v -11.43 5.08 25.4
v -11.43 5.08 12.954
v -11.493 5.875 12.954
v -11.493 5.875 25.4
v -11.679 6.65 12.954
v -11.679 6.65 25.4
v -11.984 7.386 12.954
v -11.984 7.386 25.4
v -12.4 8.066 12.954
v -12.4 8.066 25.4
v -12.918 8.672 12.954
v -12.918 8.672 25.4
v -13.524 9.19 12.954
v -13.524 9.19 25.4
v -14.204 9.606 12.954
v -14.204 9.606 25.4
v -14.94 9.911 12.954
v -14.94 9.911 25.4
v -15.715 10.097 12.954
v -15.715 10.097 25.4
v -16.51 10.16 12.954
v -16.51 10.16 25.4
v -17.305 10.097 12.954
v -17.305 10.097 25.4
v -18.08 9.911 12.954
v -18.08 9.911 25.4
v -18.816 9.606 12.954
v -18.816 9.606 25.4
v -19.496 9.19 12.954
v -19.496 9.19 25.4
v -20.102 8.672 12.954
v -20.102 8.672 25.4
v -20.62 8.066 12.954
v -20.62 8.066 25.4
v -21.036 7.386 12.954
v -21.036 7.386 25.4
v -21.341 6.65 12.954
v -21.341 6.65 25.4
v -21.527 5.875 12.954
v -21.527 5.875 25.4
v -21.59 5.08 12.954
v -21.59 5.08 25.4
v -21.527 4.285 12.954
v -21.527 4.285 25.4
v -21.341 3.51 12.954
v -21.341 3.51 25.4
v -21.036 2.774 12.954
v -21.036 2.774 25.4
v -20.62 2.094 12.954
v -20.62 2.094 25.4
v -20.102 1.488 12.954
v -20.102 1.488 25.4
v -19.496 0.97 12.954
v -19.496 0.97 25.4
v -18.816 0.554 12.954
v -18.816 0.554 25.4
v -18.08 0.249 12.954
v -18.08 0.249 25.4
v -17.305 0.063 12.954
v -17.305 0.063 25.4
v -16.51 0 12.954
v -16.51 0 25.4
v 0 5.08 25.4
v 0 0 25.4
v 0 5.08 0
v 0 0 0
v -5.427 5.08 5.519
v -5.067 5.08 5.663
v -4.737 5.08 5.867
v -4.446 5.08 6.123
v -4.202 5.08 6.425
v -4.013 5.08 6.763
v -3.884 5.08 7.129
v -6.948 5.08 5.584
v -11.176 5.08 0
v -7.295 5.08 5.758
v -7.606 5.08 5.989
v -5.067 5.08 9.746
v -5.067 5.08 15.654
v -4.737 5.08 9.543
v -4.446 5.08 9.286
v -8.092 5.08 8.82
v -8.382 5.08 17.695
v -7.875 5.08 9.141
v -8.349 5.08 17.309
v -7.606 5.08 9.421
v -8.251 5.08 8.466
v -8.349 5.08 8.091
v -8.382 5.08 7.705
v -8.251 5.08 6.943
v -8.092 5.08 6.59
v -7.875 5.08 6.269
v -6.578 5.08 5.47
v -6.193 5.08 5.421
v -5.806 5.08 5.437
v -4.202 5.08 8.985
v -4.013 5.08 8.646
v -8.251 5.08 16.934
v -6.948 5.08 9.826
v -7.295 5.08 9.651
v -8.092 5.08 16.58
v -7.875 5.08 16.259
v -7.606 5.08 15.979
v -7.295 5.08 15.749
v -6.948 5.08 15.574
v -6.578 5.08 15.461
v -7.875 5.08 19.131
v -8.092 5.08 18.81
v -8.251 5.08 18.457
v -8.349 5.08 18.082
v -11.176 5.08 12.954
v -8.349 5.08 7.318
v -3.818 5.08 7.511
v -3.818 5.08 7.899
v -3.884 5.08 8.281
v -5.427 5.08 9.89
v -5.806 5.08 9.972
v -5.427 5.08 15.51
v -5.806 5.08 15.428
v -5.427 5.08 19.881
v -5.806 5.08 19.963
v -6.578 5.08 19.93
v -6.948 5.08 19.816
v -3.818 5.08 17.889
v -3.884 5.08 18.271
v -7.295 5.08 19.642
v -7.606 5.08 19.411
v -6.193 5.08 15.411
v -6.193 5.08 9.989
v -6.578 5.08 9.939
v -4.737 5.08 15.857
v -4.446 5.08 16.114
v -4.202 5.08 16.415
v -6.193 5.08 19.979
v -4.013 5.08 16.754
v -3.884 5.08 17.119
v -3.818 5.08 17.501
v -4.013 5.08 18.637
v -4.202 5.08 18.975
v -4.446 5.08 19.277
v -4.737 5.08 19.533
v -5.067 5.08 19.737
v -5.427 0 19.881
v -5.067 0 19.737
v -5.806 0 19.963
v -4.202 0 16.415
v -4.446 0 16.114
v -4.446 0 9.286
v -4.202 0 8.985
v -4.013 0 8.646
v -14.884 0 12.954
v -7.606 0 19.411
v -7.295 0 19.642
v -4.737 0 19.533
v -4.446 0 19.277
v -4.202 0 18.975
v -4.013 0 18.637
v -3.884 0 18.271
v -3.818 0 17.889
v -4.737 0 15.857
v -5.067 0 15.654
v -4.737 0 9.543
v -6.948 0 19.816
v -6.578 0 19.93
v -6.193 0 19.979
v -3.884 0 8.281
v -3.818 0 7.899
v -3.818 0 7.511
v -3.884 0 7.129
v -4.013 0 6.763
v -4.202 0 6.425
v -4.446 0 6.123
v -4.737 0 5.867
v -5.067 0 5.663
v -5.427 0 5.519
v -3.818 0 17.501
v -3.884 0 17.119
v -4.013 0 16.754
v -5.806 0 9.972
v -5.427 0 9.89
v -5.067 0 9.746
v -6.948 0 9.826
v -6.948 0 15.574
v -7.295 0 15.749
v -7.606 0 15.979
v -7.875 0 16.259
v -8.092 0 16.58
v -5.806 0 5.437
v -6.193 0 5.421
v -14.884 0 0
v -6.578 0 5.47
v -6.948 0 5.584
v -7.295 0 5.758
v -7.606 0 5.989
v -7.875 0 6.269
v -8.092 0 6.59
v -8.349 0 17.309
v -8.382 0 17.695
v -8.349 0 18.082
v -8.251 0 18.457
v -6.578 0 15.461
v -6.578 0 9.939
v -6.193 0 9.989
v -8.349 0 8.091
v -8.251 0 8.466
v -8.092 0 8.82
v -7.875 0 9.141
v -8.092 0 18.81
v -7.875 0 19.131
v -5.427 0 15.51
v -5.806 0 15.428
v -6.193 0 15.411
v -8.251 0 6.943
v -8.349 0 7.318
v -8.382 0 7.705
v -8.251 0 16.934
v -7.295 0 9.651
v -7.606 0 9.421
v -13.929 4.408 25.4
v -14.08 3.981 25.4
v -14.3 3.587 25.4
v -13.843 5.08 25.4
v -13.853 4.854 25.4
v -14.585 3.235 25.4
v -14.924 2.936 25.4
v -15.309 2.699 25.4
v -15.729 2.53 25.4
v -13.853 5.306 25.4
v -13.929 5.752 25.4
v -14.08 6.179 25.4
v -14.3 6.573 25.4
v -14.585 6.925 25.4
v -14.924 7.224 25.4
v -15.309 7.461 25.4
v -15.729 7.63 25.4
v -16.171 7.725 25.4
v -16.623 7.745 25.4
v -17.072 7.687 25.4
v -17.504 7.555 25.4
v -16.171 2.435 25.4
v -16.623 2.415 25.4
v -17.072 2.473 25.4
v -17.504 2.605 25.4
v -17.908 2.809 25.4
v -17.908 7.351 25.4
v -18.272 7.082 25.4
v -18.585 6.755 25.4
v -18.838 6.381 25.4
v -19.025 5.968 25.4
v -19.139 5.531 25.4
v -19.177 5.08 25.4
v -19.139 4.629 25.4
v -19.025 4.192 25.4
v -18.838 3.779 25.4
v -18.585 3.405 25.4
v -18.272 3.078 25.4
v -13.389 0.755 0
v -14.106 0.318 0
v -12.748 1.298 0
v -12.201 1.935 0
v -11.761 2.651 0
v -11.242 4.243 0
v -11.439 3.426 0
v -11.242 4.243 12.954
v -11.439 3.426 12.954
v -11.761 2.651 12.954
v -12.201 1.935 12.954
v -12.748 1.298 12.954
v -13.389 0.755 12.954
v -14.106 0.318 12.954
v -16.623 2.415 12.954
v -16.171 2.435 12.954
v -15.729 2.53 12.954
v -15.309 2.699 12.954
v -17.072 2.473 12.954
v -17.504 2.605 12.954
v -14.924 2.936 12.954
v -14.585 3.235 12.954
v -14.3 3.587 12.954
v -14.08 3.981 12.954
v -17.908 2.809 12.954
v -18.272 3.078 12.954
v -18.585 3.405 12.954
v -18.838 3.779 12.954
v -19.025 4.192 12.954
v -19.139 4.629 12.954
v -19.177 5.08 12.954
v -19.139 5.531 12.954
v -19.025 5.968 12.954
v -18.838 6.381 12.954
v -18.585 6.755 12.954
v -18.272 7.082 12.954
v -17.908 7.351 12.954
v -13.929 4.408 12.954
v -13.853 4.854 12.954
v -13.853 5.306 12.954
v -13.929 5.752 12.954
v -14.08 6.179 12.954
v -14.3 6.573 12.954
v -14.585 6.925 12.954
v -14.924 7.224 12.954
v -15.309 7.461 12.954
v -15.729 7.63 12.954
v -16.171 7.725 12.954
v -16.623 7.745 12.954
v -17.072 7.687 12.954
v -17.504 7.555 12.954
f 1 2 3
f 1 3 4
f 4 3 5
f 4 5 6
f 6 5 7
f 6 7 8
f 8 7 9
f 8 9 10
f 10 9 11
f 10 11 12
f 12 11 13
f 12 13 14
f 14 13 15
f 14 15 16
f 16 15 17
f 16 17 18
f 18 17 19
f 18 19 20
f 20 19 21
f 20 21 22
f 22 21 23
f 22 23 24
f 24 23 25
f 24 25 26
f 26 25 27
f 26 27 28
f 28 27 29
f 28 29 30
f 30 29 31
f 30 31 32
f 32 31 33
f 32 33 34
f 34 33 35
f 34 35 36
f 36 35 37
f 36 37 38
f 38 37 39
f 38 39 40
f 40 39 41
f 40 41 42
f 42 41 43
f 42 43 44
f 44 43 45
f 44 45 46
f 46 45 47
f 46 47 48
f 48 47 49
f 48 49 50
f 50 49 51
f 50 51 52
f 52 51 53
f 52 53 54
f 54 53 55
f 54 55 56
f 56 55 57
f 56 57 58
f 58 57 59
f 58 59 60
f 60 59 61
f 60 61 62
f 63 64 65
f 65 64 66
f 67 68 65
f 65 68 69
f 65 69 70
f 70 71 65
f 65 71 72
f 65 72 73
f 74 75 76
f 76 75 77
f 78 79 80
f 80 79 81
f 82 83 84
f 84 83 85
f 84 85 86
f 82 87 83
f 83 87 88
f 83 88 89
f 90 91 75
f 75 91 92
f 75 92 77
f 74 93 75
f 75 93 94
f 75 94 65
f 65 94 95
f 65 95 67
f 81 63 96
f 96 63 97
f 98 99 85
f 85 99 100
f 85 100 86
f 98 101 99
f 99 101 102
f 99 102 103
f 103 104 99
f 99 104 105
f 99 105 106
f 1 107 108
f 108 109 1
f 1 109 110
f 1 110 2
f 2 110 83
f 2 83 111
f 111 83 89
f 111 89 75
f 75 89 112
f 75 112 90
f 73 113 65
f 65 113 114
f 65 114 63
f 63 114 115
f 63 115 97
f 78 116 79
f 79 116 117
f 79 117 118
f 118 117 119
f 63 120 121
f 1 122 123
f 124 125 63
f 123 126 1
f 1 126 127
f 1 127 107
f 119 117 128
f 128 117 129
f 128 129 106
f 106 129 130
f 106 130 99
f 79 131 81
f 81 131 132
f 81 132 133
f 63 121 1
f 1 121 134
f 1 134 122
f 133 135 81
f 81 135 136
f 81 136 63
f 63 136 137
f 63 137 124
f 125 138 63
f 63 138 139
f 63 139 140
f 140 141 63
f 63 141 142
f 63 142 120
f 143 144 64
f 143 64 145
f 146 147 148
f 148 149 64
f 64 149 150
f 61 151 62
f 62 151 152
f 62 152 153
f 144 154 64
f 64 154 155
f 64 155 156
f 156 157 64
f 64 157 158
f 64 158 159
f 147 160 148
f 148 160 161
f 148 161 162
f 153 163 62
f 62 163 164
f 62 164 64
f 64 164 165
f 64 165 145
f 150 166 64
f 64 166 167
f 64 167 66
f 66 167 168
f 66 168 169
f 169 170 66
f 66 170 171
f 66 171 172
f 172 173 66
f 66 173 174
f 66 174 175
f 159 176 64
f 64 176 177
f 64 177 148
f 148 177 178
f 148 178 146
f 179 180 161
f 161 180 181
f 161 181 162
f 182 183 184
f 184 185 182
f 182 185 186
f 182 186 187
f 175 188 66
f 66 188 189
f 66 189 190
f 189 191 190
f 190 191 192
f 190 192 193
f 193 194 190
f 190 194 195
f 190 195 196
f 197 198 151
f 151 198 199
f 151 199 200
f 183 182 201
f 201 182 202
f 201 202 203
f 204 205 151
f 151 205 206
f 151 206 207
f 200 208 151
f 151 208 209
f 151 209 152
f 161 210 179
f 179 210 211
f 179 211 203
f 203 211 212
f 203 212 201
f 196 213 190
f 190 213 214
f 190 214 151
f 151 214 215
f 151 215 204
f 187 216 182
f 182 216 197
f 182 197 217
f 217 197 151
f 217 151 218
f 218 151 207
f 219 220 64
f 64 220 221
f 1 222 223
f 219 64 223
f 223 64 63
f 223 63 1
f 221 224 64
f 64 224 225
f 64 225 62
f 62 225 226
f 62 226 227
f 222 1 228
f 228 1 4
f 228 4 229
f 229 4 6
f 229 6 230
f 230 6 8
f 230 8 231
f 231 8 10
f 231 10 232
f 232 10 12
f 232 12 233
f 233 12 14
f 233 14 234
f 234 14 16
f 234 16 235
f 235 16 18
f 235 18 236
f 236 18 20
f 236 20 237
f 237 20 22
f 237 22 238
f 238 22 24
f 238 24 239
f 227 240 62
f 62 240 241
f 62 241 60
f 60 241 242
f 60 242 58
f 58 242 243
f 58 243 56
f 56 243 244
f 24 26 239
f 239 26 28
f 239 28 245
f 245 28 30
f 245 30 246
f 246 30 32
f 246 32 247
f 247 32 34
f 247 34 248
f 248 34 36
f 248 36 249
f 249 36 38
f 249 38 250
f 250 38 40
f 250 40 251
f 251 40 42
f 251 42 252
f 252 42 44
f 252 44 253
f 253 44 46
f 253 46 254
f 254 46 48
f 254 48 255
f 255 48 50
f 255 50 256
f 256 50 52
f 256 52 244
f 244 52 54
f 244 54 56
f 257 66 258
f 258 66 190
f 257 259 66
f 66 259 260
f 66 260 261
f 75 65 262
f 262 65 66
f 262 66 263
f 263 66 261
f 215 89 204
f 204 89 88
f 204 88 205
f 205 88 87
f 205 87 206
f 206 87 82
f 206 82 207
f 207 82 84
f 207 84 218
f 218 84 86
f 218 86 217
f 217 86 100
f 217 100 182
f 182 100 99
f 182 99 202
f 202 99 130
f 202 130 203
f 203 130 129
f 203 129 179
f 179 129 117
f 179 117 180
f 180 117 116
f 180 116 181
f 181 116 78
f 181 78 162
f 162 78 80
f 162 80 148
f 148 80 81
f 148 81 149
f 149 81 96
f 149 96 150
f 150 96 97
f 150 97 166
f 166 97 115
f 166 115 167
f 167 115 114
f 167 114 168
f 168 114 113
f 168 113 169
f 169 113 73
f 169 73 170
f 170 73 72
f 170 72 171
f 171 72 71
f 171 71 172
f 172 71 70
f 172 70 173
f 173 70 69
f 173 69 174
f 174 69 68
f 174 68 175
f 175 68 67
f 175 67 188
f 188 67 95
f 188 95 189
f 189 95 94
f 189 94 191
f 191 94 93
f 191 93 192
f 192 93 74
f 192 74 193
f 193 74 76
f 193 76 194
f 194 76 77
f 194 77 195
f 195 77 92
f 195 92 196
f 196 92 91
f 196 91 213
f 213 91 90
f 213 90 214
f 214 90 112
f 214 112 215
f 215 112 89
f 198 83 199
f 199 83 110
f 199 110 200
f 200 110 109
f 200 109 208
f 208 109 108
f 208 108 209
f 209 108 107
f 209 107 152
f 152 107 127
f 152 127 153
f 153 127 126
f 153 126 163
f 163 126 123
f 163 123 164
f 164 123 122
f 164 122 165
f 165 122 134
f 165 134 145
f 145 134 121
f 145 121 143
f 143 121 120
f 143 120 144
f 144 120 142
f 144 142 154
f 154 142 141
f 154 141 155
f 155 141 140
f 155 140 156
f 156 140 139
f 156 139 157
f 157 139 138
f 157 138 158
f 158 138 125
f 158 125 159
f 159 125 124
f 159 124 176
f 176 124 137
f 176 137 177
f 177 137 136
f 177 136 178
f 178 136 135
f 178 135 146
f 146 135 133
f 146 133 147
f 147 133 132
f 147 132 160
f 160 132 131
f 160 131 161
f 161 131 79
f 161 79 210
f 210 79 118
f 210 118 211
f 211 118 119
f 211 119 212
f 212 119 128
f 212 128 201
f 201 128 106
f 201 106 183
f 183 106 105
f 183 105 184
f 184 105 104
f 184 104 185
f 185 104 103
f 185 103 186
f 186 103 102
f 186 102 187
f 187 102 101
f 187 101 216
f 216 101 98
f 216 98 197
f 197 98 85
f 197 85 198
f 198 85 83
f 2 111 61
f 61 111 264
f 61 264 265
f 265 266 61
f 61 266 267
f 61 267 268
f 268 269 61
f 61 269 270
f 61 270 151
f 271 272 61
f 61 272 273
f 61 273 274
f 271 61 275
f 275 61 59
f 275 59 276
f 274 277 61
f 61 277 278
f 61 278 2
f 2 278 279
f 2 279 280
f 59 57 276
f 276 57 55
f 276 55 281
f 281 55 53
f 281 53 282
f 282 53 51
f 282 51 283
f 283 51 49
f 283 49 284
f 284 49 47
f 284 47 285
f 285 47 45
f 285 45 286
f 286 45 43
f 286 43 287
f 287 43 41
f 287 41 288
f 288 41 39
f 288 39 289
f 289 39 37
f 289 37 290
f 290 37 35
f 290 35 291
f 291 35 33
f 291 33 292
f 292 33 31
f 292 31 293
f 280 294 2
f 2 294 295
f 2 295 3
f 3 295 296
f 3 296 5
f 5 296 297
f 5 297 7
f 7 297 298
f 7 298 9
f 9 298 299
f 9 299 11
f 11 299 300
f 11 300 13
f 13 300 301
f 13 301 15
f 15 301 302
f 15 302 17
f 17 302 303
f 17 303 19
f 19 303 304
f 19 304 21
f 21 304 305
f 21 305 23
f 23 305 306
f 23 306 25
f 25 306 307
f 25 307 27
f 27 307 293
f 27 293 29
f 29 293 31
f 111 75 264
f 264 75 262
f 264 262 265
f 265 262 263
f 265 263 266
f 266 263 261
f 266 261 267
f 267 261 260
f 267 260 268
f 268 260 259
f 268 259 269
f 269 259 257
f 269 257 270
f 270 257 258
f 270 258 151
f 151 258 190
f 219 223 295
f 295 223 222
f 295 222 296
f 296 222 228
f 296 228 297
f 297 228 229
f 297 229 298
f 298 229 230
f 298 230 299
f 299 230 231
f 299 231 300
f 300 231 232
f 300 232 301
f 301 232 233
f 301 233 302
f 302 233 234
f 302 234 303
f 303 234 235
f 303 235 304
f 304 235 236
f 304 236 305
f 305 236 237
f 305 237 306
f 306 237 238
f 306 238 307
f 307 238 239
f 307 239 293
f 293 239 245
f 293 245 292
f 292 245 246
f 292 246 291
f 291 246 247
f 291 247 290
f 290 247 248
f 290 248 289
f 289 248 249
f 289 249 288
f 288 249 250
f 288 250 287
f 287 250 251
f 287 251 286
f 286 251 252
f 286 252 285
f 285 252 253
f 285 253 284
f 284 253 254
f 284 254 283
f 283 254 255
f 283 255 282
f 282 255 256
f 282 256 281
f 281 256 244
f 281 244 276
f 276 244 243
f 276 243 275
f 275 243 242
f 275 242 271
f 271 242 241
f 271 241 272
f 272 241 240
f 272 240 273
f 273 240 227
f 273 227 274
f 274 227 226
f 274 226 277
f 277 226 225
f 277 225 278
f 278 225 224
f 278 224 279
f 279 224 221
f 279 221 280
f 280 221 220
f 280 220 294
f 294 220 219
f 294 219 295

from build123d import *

# Parameters (mm, degrees)
BOSS_EXTRUDE1_DEPTH = 25.4
SKETCH5_R           = 2.286
CUT_EXTRUDE3_DEPTH  = 12.954
SKETCH8_R           = 5.334
CUT_EXTRUDE5_DEPTH  = 12.954
SKETCH9_R           = 2.667
CUT_EXTRUDE6_DEPTH  = 12.7


with BuildPart() as part:
    # Sketch2 → Boss-Extrude1 (new body)
    with BuildSketch(Plane.XY):
        with BuildLine():
            Line((0, 0), (-16.51, 0))
            ThreePointArc((-16.51, 0), (-20.102102448, 8.672102448), (-11.43, 5.08))
            Line((-11.43, 5.08), (0, 5.08))
            Line((0, 5.08), (0, 0))
        make_face()
    extrude(amount=BOSS_EXTRUDE1_DEPTH)

    # Sketch5 → Cut-Extrude3 (cut)
    with BuildSketch(Plane(origin=(0, 5.08, 0), x_dir=(1, 0, 0), z_dir=(0, 1, 0))):
        with Locations((-6.096, -17.695333333)):
            Circle(SKETCH5_R)
        with Locations((-6.096, -7.704666667)):
            Circle(SKETCH5_R)
    extrude(amount=-CUT_EXTRUDE3_DEPTH, mode=Mode.SUBTRACT)

    # Sketch8 → Cut-Extrude5 (cut)
    with BuildSketch(Plane(origin=(0, 0, 0), x_dir=(-1, 0, 0), z_dir=(0, 0, -1))):
        with Locations((16.51, 5.08)):
            Circle(SKETCH8_R)
    extrude(amount=-CUT_EXTRUDE5_DEPTH, mode=Mode.SUBTRACT)

    # Sketch9 → Cut-Extrude6 (cut)
    with BuildSketch(Plane(origin=(0, 0, 12.954), x_dir=(-1, 0, 0), z_dir=(0, 0, -1))):
        with Locations((16.51, 5.08)):
            Circle(SKETCH9_R)
    extrude(amount=-CUT_EXTRUDE6_DEPTH, mode=Mode.SUBTRACT)


solid = part.part
